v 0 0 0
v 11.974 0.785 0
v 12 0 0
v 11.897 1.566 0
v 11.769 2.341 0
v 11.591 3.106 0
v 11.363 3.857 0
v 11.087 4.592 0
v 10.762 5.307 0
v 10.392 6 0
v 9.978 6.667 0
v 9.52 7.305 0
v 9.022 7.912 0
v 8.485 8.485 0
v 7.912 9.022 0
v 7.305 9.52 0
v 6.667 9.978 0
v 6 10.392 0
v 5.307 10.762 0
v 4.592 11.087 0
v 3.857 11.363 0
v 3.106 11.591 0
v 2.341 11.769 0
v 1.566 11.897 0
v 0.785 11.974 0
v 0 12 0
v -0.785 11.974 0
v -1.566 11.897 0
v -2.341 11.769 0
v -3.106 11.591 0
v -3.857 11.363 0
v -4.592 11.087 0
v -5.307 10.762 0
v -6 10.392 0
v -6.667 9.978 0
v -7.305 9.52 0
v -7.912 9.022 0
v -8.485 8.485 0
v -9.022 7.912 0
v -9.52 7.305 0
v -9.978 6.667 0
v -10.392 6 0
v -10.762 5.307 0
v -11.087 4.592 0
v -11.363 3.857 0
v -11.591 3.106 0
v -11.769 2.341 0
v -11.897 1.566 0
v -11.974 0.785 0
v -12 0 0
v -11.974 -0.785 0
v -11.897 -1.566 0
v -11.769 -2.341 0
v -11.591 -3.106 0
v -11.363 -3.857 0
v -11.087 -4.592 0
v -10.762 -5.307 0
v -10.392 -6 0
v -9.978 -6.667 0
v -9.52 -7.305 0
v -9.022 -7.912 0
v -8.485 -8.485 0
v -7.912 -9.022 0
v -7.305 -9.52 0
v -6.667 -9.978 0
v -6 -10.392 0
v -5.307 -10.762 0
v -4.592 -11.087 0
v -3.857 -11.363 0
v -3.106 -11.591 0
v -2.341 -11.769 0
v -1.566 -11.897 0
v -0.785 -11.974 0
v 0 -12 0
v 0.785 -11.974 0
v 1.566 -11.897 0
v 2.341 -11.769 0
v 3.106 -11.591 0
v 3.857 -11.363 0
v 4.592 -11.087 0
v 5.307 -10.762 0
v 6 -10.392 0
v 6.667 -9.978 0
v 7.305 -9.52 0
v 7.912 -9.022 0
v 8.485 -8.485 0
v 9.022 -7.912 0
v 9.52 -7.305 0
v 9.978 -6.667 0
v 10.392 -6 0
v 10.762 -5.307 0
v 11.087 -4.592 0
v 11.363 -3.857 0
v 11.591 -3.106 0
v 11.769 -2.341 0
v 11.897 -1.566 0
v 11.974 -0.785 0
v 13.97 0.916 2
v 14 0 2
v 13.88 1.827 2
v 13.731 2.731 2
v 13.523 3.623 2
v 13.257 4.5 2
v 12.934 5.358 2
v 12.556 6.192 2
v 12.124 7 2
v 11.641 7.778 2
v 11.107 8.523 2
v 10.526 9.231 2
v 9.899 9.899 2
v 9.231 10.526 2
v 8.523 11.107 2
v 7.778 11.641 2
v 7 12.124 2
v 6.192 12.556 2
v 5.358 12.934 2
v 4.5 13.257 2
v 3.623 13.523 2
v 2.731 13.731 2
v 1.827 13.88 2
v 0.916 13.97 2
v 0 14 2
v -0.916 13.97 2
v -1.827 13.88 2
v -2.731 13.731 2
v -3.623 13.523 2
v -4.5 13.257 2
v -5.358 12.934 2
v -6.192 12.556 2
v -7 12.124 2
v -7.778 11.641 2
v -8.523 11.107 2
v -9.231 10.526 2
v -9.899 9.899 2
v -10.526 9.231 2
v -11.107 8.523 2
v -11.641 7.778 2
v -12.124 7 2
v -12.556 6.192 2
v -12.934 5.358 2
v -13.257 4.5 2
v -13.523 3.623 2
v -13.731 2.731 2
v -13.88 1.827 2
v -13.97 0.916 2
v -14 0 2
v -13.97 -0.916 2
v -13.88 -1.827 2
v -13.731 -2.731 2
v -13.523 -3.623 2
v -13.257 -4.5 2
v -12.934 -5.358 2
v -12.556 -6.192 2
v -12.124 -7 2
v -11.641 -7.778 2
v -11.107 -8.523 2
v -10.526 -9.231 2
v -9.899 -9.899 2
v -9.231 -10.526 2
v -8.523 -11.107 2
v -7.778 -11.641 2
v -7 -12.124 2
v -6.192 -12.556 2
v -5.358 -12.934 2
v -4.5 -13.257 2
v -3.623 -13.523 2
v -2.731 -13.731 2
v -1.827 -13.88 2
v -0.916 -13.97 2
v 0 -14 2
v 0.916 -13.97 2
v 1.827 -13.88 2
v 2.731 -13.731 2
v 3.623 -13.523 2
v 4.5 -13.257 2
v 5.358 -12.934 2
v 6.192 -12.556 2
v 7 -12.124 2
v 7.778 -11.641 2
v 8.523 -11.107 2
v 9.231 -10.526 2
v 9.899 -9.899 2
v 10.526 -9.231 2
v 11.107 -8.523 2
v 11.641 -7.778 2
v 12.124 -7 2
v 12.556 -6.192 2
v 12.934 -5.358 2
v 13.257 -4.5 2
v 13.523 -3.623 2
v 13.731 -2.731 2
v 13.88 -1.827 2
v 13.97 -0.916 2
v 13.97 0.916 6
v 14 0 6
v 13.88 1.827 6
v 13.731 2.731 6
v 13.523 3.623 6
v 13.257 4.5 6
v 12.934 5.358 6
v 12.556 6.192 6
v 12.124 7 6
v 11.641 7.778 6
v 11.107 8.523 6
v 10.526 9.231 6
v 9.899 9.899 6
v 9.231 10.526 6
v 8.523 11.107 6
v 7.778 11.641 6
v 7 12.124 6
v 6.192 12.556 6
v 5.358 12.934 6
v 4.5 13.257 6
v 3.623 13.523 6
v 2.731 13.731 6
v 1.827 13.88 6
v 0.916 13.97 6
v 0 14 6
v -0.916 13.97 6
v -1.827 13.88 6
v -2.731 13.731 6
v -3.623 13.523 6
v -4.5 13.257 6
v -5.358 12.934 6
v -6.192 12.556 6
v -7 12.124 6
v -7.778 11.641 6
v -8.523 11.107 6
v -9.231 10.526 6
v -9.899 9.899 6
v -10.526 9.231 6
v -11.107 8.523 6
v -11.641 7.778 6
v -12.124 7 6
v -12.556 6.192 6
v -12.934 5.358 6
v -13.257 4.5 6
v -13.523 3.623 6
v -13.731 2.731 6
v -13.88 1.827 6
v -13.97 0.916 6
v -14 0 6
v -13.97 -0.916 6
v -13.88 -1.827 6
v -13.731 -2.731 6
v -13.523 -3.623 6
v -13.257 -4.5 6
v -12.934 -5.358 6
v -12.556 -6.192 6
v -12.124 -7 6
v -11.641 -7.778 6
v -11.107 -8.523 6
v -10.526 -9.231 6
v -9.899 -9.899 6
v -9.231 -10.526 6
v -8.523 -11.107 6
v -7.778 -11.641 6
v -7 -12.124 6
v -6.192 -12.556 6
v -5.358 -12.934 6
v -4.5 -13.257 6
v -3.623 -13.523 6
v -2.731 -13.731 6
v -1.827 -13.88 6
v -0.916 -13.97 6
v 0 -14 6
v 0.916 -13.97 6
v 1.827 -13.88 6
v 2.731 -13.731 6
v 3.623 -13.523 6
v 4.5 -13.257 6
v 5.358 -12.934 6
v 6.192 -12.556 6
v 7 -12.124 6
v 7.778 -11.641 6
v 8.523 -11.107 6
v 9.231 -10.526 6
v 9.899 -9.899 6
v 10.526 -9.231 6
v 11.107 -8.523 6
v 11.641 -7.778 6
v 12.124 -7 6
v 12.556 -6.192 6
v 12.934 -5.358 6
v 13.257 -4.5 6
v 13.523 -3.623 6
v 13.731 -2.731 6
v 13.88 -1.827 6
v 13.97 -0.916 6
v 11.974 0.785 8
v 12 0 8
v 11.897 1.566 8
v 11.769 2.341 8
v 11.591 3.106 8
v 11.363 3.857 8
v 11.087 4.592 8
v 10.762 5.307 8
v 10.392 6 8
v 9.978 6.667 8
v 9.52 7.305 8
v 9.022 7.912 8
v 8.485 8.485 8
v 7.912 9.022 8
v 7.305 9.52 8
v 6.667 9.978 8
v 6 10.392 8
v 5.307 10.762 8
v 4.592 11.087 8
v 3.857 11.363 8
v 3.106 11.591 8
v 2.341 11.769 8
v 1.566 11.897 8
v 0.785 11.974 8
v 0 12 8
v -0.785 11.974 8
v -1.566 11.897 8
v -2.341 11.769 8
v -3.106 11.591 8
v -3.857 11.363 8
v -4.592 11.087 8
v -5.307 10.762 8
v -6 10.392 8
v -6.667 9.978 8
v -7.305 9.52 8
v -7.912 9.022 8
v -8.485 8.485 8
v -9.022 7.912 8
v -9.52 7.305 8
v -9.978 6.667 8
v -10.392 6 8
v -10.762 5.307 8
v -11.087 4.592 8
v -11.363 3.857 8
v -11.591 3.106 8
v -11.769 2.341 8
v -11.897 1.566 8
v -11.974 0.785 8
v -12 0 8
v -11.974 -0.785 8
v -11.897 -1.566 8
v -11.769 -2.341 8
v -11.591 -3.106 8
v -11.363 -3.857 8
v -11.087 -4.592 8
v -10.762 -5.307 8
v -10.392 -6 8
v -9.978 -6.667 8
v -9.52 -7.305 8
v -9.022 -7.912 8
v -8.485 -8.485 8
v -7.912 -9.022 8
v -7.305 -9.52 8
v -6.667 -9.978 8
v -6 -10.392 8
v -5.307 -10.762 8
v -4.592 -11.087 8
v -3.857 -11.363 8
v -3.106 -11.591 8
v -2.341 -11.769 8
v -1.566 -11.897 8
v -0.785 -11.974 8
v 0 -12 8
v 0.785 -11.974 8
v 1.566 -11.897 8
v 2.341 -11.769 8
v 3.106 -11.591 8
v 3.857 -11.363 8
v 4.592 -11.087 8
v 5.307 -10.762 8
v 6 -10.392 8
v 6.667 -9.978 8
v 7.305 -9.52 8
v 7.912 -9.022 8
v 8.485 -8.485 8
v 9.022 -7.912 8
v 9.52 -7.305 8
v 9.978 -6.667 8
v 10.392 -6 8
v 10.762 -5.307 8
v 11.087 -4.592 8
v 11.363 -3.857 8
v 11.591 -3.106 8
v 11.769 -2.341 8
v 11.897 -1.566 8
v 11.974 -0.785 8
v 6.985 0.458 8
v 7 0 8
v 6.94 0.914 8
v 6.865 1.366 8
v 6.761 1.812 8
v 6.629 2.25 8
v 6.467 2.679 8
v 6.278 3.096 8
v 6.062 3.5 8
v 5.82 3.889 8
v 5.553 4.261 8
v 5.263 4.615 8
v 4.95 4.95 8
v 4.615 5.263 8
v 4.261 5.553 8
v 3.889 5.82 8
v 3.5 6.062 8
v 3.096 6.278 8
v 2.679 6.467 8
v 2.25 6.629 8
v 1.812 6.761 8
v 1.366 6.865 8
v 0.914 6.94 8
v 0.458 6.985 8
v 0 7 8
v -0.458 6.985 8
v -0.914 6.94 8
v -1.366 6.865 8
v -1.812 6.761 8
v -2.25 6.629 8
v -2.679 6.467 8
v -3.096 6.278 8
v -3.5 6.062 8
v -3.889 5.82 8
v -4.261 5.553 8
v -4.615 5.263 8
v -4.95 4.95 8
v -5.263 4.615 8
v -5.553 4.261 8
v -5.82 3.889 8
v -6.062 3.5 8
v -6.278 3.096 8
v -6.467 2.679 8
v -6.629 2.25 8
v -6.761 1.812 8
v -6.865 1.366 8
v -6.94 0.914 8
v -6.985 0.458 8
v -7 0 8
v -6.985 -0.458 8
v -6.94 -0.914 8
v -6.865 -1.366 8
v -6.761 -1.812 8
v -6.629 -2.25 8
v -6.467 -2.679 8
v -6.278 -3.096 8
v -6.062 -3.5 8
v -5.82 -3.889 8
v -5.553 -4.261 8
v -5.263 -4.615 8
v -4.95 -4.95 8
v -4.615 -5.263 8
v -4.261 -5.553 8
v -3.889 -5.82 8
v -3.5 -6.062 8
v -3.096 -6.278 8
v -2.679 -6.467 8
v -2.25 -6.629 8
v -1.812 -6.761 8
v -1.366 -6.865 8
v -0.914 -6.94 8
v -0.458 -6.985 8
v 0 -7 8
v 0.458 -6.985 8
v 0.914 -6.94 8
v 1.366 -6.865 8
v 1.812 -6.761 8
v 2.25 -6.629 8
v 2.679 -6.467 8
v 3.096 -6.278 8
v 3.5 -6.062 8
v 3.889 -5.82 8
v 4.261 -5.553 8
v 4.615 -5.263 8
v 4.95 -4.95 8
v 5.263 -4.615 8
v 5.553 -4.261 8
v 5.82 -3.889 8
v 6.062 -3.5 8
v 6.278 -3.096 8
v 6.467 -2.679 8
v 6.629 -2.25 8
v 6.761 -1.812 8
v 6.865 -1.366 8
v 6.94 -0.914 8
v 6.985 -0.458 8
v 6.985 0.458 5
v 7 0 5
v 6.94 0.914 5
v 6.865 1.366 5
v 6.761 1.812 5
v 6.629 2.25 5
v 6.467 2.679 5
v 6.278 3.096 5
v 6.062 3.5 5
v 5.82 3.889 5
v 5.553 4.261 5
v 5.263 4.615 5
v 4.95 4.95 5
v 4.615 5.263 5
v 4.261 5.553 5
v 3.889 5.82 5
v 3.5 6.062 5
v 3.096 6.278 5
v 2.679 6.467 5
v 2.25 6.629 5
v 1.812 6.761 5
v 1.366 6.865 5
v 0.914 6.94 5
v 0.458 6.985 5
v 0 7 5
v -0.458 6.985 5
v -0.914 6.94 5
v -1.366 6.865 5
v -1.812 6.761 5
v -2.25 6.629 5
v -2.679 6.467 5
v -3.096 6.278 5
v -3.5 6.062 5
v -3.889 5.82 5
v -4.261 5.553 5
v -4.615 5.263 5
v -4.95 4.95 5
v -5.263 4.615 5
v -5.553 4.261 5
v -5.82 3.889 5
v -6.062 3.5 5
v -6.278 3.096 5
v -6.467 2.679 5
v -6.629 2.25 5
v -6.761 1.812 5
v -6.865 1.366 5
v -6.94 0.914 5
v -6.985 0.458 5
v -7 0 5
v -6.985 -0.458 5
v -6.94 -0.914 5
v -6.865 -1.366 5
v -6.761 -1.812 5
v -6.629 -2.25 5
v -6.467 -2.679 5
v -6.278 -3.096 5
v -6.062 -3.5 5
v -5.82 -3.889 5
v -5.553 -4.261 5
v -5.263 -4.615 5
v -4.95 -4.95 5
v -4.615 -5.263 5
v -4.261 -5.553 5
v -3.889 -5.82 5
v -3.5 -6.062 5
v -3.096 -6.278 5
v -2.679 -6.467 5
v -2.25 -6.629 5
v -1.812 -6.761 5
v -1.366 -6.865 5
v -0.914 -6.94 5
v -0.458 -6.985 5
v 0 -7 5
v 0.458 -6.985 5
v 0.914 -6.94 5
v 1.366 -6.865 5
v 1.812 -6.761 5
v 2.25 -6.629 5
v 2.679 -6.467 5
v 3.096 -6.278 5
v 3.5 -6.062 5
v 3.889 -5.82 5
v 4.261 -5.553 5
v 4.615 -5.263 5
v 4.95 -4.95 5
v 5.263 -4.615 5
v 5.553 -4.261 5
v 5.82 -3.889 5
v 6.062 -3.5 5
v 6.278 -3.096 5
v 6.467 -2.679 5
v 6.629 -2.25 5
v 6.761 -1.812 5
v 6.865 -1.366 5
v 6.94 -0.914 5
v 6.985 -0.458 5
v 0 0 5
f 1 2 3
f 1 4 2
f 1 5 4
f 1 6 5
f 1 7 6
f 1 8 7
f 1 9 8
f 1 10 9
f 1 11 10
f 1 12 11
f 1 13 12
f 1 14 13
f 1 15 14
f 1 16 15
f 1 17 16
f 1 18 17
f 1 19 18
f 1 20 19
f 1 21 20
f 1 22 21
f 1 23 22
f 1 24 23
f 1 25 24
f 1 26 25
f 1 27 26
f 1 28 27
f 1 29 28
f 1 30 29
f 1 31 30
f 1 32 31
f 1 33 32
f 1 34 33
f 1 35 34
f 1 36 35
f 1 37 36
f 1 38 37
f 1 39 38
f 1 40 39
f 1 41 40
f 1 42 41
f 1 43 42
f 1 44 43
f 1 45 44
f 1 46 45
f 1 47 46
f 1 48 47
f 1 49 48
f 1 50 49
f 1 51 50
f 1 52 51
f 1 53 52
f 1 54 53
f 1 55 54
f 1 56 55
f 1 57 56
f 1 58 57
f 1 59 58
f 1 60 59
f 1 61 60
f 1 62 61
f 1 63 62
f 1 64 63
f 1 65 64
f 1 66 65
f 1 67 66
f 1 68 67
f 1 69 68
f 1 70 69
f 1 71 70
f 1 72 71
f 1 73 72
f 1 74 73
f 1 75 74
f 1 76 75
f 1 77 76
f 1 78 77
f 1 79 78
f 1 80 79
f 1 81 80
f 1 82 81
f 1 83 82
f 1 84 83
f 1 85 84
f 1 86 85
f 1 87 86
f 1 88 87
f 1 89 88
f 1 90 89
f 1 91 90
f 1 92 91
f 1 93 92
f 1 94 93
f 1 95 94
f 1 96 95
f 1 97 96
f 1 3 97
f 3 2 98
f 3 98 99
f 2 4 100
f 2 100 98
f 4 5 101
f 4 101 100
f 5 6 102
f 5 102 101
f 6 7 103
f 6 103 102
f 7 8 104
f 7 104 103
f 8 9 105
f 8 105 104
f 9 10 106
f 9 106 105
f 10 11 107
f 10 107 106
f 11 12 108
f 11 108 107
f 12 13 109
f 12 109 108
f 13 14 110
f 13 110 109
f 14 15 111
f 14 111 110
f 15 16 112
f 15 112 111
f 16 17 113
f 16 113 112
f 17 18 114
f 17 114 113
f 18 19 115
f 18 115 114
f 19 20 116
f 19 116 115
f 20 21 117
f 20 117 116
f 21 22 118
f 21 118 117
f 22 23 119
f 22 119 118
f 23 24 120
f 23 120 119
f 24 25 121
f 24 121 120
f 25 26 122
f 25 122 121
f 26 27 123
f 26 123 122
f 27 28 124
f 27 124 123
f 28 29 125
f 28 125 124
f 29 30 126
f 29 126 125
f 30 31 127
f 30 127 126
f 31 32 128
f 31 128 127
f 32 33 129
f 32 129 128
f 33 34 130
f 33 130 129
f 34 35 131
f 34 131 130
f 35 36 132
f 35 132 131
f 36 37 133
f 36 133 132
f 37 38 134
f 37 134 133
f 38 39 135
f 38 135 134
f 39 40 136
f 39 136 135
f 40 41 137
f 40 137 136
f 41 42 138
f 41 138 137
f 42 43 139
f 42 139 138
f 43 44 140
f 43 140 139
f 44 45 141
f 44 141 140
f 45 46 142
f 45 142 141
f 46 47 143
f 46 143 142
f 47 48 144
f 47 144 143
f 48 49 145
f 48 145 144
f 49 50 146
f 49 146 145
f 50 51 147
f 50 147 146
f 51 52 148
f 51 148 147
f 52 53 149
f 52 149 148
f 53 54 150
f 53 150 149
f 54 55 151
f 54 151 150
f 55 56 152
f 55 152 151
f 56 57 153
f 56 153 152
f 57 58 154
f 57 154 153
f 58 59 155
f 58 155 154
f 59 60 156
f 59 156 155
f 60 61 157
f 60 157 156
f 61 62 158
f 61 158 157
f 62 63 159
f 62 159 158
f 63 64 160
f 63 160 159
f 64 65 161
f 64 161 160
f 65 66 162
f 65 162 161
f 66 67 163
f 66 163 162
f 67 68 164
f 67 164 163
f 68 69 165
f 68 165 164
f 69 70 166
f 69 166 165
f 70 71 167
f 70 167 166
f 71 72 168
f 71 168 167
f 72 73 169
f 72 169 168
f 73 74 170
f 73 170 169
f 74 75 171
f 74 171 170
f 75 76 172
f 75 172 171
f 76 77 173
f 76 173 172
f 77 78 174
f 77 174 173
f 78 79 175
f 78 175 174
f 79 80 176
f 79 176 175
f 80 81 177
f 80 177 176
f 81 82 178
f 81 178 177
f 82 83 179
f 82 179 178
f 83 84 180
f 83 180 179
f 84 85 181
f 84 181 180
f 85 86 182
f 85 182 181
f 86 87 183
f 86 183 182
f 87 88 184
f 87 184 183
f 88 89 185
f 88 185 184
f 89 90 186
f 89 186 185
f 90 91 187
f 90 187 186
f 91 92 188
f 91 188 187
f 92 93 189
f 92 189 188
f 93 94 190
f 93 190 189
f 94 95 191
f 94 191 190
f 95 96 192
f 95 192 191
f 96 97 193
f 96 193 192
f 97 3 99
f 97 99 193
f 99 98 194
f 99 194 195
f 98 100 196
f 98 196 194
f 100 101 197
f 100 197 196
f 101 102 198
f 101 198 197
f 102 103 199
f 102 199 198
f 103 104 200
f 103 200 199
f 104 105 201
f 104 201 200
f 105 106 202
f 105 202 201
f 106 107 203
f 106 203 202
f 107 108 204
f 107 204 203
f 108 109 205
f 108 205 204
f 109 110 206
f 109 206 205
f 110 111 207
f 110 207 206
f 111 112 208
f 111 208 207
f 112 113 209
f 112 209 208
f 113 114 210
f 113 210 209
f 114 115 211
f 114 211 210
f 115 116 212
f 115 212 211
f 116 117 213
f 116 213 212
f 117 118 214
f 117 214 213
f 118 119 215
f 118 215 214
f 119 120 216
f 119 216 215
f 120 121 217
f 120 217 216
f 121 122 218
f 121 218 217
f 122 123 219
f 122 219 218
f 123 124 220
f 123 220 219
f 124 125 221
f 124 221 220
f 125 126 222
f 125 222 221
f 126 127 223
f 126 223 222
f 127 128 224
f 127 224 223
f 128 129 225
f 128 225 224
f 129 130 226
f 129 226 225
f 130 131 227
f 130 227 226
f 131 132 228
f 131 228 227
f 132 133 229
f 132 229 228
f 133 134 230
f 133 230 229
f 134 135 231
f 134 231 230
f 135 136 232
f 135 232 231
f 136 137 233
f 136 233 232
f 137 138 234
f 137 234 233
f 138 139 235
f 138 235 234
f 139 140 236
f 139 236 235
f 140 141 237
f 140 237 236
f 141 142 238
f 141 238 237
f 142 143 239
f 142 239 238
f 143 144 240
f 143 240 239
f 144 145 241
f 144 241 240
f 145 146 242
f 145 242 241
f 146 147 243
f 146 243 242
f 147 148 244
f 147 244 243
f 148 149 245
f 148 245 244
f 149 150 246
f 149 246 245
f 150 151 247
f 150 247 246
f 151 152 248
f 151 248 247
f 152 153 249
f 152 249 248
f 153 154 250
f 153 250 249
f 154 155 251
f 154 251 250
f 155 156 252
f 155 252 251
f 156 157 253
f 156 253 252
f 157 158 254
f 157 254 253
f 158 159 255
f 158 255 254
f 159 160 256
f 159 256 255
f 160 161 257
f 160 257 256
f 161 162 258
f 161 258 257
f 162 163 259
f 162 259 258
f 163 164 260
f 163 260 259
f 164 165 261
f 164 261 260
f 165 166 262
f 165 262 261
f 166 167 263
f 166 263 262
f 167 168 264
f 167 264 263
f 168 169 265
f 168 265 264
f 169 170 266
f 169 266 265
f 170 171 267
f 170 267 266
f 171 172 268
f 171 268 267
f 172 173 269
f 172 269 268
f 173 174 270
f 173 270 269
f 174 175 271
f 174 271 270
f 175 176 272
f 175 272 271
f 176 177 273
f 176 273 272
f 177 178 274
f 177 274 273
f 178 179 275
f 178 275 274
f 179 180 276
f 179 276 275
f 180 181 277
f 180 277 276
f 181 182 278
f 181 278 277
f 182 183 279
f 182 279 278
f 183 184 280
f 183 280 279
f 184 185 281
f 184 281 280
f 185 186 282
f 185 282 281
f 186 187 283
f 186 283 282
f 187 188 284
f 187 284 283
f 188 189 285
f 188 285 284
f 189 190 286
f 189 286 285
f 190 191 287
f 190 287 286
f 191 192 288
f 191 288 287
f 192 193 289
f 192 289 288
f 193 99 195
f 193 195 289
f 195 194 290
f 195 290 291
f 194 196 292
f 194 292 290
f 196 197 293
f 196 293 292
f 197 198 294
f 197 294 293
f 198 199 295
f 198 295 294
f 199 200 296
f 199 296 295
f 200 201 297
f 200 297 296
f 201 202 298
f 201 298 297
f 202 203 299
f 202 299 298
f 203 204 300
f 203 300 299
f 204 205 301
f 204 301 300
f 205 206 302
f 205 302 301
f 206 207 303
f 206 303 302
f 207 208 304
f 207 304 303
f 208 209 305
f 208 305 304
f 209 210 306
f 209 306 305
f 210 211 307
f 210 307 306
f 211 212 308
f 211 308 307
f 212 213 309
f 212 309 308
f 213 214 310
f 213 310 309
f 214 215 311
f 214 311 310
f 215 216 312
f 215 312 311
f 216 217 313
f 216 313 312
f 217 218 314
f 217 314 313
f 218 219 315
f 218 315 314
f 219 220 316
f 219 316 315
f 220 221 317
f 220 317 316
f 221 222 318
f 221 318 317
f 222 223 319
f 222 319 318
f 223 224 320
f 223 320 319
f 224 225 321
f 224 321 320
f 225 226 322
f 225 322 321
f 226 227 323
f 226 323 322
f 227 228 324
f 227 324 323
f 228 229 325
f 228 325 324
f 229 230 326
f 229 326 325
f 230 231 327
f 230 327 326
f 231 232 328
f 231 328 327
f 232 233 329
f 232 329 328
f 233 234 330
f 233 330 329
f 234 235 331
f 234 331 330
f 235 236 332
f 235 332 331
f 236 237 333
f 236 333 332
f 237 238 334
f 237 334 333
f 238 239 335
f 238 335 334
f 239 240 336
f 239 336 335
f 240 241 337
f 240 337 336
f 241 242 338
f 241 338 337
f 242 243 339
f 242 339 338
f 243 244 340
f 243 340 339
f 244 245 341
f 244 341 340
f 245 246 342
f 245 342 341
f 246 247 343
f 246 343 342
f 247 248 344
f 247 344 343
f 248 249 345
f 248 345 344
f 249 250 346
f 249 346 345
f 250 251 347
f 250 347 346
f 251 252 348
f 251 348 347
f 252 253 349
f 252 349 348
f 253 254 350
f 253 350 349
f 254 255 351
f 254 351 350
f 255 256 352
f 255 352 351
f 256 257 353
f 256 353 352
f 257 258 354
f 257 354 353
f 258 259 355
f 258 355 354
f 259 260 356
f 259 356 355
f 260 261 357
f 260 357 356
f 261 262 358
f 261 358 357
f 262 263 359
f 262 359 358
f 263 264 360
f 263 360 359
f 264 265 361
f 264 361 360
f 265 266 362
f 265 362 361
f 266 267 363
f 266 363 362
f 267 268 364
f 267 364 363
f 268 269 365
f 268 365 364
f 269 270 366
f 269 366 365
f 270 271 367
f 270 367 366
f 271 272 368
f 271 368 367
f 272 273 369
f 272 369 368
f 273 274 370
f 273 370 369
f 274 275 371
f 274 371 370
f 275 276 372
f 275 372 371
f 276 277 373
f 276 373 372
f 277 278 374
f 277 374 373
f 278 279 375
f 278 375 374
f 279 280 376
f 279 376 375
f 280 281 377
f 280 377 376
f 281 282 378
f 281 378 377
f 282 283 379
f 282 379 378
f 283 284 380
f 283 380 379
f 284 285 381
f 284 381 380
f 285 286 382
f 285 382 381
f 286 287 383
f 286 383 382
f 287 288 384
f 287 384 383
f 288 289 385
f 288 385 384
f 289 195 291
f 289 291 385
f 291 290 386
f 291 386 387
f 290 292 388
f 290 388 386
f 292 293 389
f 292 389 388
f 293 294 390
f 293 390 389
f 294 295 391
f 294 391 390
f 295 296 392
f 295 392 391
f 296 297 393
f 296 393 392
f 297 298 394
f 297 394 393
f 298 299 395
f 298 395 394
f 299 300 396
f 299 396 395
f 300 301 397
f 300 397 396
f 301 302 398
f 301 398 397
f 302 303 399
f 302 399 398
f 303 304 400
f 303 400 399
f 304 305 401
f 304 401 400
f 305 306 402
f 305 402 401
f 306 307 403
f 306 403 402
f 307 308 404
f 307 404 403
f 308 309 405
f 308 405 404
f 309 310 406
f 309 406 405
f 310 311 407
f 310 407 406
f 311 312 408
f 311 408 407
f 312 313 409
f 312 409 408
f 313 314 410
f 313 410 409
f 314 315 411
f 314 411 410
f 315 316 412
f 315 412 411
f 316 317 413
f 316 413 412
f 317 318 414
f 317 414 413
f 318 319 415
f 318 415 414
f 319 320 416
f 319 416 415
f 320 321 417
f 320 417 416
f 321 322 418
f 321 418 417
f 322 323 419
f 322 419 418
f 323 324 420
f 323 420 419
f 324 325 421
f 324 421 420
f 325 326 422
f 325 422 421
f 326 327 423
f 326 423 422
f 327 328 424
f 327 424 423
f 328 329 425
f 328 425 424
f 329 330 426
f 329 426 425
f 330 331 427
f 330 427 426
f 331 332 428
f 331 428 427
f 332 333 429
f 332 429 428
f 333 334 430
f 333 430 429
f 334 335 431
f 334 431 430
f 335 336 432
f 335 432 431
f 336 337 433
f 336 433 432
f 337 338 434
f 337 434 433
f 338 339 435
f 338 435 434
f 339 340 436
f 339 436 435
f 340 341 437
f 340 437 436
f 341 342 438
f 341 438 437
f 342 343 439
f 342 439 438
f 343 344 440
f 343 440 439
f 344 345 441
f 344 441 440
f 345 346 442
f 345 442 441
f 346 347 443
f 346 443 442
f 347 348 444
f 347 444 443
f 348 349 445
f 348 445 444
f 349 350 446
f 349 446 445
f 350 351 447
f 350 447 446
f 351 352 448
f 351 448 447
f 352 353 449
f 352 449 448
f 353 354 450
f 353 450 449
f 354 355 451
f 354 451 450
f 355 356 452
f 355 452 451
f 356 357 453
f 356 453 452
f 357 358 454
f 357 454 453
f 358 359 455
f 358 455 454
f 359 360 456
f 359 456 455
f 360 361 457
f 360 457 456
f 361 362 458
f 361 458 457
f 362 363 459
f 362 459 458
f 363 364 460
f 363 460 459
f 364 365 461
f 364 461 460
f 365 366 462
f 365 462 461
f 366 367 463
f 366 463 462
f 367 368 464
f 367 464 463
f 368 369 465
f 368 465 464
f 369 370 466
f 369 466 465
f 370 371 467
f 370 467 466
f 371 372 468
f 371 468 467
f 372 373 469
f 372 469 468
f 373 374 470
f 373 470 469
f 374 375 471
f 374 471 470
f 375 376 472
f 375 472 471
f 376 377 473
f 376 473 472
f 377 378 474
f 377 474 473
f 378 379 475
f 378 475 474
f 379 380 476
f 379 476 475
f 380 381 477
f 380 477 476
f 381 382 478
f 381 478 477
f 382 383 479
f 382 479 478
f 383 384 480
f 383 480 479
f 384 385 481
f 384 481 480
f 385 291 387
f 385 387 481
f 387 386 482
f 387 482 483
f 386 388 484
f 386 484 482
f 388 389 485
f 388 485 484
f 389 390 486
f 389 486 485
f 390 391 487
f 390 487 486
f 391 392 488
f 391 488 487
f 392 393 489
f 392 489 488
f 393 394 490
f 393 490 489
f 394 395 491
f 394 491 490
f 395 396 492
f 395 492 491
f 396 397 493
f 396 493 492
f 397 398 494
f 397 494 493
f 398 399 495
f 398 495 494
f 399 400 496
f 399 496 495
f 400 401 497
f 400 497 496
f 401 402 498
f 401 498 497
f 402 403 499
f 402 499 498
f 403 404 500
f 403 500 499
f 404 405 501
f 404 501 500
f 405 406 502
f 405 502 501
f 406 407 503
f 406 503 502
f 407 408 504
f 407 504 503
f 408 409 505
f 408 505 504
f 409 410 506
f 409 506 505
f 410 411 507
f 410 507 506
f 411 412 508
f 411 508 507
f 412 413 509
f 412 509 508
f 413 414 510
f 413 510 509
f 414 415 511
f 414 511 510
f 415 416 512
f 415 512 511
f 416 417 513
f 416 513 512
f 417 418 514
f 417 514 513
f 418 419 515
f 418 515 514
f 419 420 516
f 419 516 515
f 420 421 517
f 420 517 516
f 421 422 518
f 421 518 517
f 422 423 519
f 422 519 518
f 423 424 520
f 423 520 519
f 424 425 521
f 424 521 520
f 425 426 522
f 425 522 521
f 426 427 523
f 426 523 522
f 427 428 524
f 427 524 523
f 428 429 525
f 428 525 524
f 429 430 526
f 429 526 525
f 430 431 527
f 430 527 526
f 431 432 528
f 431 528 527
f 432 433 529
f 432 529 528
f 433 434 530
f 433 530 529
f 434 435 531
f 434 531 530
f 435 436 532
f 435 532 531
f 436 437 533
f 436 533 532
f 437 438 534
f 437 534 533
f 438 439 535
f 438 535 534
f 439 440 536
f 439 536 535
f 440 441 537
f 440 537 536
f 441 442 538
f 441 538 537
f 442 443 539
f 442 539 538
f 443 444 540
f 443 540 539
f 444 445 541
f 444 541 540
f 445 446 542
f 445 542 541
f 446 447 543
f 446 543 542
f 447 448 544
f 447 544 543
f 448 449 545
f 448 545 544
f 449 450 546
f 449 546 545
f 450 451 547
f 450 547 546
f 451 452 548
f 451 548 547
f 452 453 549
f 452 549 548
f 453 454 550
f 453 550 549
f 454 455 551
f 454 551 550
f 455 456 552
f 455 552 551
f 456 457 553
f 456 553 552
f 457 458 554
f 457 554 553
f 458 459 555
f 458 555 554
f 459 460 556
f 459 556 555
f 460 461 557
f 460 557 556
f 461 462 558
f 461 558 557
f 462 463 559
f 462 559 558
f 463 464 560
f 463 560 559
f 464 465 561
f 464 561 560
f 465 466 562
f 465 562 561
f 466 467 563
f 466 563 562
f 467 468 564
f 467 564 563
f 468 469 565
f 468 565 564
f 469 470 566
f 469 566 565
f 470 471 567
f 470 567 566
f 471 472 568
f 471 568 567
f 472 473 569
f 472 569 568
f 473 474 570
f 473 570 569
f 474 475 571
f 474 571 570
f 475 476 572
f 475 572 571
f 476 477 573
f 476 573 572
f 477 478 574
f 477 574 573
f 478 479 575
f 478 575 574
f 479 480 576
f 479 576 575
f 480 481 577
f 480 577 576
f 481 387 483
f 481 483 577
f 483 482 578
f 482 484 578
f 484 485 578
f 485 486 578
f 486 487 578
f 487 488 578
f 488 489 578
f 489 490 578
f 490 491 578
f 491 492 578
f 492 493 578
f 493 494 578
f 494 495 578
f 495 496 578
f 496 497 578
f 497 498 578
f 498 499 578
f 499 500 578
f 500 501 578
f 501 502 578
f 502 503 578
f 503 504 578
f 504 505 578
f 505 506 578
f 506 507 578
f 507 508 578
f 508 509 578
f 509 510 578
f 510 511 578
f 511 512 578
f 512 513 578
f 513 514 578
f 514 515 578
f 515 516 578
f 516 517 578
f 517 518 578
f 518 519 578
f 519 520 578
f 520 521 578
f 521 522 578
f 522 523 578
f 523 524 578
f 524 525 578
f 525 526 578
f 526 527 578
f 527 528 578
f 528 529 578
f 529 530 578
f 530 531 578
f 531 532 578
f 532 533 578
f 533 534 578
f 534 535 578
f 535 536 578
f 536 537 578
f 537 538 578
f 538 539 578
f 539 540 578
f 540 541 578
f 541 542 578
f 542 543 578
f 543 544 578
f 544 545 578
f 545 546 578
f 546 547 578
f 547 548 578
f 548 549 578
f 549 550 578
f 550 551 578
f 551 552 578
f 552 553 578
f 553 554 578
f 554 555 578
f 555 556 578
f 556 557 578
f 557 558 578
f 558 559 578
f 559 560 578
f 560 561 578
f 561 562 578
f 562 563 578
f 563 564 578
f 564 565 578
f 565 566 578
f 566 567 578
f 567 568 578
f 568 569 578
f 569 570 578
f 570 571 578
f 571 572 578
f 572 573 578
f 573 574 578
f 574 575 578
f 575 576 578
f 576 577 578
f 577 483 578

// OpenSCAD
// Original MechIntel educational model. CC0-1.0. Units: mm.
// Not a standardized or load-rated component.
$fn=96;
// Section points: [radius, height], mm. Edit to change the profile.
section=[[0, 0], [12, 0], [14, 2], [14, 6], [12, 8], [7, 8], [7, 5], [0, 5]];
rotate_extrude($fn=96) polygon(points=section);
